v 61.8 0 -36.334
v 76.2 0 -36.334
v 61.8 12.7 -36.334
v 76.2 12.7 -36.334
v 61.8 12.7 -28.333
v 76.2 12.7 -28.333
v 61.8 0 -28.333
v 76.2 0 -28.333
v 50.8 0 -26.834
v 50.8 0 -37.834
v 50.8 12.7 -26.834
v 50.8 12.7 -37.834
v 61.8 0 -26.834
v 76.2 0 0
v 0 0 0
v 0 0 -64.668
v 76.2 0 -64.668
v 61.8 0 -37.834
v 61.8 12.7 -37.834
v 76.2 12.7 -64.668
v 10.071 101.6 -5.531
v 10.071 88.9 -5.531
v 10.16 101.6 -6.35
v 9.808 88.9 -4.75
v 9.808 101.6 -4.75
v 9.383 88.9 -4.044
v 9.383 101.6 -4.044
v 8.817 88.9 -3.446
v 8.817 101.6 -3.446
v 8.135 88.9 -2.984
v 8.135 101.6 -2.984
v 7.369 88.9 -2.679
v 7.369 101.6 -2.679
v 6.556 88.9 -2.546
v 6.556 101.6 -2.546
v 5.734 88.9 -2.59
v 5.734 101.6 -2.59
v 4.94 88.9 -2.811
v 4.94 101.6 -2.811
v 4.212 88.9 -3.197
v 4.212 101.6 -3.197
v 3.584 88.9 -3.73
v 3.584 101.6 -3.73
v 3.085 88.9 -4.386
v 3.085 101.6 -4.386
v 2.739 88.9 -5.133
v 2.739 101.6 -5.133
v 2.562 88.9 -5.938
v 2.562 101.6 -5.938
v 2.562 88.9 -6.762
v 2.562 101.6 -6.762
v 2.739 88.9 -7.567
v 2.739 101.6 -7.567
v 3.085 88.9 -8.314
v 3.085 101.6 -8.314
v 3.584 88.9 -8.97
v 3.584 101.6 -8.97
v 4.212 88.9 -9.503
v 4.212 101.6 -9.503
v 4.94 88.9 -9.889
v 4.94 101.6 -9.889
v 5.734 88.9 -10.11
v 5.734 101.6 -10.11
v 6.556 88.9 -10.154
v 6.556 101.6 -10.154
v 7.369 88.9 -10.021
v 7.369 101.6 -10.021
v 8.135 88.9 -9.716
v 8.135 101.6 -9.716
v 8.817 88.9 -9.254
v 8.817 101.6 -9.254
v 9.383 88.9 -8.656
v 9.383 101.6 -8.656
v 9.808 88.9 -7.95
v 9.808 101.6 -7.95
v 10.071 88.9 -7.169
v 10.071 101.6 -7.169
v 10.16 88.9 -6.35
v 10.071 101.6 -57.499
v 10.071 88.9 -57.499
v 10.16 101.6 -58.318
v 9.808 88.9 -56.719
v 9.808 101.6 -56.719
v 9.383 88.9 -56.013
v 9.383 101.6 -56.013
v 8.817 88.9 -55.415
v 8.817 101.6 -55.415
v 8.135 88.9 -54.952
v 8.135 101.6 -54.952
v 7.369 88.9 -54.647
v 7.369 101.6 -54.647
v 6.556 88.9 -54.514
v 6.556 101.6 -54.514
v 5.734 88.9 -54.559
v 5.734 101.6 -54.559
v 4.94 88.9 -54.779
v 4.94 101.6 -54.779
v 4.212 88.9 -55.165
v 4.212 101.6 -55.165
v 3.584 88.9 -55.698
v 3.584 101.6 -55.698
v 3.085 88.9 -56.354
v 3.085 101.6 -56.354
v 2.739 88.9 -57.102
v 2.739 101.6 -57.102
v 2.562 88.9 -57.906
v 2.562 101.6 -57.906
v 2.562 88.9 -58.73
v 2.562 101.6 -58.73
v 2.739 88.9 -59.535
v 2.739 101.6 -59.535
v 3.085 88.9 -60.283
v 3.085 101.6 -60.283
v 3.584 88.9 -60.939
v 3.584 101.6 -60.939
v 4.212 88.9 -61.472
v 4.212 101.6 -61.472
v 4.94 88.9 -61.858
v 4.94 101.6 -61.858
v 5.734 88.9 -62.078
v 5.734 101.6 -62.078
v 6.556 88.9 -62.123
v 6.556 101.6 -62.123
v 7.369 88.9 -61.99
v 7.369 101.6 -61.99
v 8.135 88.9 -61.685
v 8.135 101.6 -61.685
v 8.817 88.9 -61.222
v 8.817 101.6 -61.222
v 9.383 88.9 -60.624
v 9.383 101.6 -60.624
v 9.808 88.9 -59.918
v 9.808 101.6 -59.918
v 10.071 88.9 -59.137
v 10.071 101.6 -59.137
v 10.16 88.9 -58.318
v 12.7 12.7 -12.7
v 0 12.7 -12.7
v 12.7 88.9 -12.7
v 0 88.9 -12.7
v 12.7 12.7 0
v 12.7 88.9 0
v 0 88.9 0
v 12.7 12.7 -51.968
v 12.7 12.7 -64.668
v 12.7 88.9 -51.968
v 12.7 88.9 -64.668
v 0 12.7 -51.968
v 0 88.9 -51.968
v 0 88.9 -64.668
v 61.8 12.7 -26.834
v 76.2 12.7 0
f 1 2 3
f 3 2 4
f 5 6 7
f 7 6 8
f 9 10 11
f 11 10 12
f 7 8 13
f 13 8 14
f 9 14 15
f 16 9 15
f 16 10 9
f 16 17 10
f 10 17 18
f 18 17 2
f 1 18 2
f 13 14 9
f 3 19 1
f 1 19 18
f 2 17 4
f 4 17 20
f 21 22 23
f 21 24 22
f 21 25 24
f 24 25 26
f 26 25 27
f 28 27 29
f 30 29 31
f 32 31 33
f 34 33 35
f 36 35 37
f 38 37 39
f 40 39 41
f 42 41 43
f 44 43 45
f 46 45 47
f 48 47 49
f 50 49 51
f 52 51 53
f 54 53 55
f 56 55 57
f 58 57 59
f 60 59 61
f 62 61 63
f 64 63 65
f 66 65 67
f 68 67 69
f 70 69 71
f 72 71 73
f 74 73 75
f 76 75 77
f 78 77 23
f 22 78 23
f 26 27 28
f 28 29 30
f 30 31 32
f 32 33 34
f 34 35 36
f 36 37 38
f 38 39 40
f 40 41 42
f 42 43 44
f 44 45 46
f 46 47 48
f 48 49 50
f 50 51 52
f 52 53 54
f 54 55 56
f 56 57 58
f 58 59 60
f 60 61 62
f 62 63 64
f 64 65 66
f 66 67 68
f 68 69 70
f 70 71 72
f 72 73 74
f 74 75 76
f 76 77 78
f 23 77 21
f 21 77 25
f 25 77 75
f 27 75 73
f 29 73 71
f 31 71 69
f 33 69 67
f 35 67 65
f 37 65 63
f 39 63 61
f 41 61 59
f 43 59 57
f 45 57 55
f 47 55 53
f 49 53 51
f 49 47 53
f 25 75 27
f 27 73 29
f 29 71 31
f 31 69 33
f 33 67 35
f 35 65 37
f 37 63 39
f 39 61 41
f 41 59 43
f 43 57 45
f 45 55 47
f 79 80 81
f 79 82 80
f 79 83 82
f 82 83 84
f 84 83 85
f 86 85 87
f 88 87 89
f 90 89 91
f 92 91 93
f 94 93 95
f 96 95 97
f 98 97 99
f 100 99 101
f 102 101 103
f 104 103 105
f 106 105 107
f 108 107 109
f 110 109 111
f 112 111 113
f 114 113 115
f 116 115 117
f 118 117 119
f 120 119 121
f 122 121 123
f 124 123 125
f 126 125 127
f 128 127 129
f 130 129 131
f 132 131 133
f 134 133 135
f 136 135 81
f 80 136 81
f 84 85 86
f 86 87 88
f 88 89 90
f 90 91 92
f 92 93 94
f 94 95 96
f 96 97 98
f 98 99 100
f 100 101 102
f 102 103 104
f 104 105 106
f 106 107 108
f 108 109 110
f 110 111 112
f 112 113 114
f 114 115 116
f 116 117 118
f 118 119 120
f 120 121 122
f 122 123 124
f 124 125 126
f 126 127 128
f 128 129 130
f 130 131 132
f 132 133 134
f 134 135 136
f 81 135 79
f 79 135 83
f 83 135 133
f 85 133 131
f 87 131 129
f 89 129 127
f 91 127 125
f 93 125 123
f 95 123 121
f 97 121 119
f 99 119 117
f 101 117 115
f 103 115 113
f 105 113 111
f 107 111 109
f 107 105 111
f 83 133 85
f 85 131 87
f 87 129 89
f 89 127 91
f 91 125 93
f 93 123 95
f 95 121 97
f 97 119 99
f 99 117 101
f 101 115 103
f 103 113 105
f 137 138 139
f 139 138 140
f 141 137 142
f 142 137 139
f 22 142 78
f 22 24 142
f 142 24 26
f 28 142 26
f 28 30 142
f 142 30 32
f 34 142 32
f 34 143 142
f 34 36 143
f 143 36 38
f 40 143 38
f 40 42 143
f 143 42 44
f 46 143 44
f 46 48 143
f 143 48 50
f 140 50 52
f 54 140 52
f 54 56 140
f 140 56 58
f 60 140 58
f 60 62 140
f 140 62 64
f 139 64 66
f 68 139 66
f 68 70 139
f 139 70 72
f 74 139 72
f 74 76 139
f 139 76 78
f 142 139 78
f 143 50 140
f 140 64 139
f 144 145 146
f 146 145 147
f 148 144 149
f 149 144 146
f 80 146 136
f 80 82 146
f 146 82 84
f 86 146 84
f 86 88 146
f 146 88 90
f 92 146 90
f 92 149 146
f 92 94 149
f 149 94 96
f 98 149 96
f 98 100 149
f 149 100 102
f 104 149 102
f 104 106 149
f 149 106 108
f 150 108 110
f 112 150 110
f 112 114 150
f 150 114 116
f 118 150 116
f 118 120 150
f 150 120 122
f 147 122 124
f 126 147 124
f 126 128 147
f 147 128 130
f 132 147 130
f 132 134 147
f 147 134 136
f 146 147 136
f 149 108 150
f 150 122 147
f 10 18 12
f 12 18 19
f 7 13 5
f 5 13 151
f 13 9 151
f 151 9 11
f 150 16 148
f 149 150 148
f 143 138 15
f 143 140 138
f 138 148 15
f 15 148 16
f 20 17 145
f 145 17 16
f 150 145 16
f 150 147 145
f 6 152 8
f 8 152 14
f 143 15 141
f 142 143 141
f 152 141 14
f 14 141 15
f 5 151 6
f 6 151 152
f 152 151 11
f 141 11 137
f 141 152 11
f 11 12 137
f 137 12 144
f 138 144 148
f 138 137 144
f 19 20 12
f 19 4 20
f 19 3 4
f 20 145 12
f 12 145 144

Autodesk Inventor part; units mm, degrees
ref_plane "YZ Plane" through (0, 0, 0) normal (1, 0, 0) x (0, 1, 0)
ref_plane "XZ Plane" through (0, 0, 0) normal (0, 1, 0) x (-1, 0, 0)
ref_plane "XY Plane" through (0, 0, 0) normal (0, 0, 1) x (1, 0, 0)
sketch "Sketch1" plane through (0, 0, 0) normal (0, 1, 0) x (-1, 0, 0)
  line L0 (0, 0) -> (-76.2, 0)
  line L1 (-76.2, 0) -> (-76.2, -64.6684)
  line L2 (-76.2, -64.6684) -> (0, -64.6684)
  line L3 (0, -64.6684) -> (0, 0)
  line L4 (0, -32.3342) -> (-50.8, -32.3342)
  line L5 (-50.8, -32.3342) -> (-50.8, -37.8342)
  line L6 (-50.8, -37.8342) -> (-61.8, -37.8342)
  line L7 (-61.8, -37.8342) -> (-61.8, -26.8342)
  line L8 (-61.8, -26.8342) -> (-50.8, -26.8342)
  line L9 (-50.8, -26.8342) -> (-50.8, -37.8342)
  dimension "d0" = 76.2
  dimension "d1" = 64.6684
  dimension "d2" = 50.8
  dimension "d3" = 5.5
  dimension "d4" = 11
  dimension "d5" = 11
extrude "Extrusion1" add sketch "Sketch1" along normal blind 12.7
sketch "Sketch2" plane through (0, 12.7, 0) normal (0, 1, 0) x (1, 0, 0)
  line L0 (0, 0) -> (76.2, 0) projected
  line L1 (0, 0) -> (12.7, 0)
  line L2 (12.7, 0) -> (12.7, 12.7)
  line L3 (12.7, 12.7) -> (0, 12.7)
  line L4 (0, 12.7) -> (0, 0)
  line L5 (0, 64.6684) -> (12.7, 64.6684)
  line L6 (12.7, 64.6684) -> (12.7, 51.9684)
  line L7 (12.7, 51.9684) -> (0, 51.9684)
  line L8 (0, 51.9684) -> (0, 64.6684)
  dimension "d8" = 12.7
  dimension "d9" = 12.7
  dimension "d10" = 12.7
  dimension "d11" = 12.7
extrude "Extrusion2" add sketch "Sketch2" along normal blind 76.2
sketch "Sketch3" plane through (0, 88.9, 0) normal (0, 1, 0) x (1, 0, 0)
  line L0 (0, 0) -> (0, 6.35)
  line L1 (0, 64.6684) -> (0, 0) projected
  line L2 (0, 6.35) -> (6.35, 6.35)
  circle A0 centre (6.35, 6.35) radius 3.81
  line L3 (0, 64.6684) -> (0, 58.3184)
  line L4 (0, 58.3184) -> (6.35, 58.3184)
  circle A1 centre (6.35, 58.3184) radius 3.81
  dimension "d14" = 6.35
  dimension "d15" = 6.35
  dimension "d16" = 7.62
  dimension "d17" = 6.35
  dimension "d18" = 7.62
extrude "Extrusion3" add sketch "Sketch3" along normal blind 12.7
sketch "Sketch4" plane through (0, 0, 0) normal (0, -1, 0) x (1, 0, 0)
  line L0 (76.2, 0) -> (76.2, -64.6684) projected
  line L1 (76.2, -32.3342) -> (76.2, -36.3342)
  line L2 (76.2, -36.3342) -> (61.8, -36.3342)
  line L3 (61.8, -37.8342) -> (61.8, -26.8342) projected
  line L4 (76.2, -36.3342) -> (50.8, -36.3342)
  line L5 (50.8, -36.3342) -> (50.8, -28.3332)
  line L6 (50.8, -28.3332) -> (76.2, -28.3332)
  line L7 (76.2, -28.3332) -> (76.2, -36.3342)
  point P0 (0, 0)
  dimension "d21" = 4
  dimension "d22" = 25.4
  dimension "d23" = 8.001
extrude "Extrusion4" cut sketch "Sketch4" against normal blind 12.7
properties part number "Maglev_top"
